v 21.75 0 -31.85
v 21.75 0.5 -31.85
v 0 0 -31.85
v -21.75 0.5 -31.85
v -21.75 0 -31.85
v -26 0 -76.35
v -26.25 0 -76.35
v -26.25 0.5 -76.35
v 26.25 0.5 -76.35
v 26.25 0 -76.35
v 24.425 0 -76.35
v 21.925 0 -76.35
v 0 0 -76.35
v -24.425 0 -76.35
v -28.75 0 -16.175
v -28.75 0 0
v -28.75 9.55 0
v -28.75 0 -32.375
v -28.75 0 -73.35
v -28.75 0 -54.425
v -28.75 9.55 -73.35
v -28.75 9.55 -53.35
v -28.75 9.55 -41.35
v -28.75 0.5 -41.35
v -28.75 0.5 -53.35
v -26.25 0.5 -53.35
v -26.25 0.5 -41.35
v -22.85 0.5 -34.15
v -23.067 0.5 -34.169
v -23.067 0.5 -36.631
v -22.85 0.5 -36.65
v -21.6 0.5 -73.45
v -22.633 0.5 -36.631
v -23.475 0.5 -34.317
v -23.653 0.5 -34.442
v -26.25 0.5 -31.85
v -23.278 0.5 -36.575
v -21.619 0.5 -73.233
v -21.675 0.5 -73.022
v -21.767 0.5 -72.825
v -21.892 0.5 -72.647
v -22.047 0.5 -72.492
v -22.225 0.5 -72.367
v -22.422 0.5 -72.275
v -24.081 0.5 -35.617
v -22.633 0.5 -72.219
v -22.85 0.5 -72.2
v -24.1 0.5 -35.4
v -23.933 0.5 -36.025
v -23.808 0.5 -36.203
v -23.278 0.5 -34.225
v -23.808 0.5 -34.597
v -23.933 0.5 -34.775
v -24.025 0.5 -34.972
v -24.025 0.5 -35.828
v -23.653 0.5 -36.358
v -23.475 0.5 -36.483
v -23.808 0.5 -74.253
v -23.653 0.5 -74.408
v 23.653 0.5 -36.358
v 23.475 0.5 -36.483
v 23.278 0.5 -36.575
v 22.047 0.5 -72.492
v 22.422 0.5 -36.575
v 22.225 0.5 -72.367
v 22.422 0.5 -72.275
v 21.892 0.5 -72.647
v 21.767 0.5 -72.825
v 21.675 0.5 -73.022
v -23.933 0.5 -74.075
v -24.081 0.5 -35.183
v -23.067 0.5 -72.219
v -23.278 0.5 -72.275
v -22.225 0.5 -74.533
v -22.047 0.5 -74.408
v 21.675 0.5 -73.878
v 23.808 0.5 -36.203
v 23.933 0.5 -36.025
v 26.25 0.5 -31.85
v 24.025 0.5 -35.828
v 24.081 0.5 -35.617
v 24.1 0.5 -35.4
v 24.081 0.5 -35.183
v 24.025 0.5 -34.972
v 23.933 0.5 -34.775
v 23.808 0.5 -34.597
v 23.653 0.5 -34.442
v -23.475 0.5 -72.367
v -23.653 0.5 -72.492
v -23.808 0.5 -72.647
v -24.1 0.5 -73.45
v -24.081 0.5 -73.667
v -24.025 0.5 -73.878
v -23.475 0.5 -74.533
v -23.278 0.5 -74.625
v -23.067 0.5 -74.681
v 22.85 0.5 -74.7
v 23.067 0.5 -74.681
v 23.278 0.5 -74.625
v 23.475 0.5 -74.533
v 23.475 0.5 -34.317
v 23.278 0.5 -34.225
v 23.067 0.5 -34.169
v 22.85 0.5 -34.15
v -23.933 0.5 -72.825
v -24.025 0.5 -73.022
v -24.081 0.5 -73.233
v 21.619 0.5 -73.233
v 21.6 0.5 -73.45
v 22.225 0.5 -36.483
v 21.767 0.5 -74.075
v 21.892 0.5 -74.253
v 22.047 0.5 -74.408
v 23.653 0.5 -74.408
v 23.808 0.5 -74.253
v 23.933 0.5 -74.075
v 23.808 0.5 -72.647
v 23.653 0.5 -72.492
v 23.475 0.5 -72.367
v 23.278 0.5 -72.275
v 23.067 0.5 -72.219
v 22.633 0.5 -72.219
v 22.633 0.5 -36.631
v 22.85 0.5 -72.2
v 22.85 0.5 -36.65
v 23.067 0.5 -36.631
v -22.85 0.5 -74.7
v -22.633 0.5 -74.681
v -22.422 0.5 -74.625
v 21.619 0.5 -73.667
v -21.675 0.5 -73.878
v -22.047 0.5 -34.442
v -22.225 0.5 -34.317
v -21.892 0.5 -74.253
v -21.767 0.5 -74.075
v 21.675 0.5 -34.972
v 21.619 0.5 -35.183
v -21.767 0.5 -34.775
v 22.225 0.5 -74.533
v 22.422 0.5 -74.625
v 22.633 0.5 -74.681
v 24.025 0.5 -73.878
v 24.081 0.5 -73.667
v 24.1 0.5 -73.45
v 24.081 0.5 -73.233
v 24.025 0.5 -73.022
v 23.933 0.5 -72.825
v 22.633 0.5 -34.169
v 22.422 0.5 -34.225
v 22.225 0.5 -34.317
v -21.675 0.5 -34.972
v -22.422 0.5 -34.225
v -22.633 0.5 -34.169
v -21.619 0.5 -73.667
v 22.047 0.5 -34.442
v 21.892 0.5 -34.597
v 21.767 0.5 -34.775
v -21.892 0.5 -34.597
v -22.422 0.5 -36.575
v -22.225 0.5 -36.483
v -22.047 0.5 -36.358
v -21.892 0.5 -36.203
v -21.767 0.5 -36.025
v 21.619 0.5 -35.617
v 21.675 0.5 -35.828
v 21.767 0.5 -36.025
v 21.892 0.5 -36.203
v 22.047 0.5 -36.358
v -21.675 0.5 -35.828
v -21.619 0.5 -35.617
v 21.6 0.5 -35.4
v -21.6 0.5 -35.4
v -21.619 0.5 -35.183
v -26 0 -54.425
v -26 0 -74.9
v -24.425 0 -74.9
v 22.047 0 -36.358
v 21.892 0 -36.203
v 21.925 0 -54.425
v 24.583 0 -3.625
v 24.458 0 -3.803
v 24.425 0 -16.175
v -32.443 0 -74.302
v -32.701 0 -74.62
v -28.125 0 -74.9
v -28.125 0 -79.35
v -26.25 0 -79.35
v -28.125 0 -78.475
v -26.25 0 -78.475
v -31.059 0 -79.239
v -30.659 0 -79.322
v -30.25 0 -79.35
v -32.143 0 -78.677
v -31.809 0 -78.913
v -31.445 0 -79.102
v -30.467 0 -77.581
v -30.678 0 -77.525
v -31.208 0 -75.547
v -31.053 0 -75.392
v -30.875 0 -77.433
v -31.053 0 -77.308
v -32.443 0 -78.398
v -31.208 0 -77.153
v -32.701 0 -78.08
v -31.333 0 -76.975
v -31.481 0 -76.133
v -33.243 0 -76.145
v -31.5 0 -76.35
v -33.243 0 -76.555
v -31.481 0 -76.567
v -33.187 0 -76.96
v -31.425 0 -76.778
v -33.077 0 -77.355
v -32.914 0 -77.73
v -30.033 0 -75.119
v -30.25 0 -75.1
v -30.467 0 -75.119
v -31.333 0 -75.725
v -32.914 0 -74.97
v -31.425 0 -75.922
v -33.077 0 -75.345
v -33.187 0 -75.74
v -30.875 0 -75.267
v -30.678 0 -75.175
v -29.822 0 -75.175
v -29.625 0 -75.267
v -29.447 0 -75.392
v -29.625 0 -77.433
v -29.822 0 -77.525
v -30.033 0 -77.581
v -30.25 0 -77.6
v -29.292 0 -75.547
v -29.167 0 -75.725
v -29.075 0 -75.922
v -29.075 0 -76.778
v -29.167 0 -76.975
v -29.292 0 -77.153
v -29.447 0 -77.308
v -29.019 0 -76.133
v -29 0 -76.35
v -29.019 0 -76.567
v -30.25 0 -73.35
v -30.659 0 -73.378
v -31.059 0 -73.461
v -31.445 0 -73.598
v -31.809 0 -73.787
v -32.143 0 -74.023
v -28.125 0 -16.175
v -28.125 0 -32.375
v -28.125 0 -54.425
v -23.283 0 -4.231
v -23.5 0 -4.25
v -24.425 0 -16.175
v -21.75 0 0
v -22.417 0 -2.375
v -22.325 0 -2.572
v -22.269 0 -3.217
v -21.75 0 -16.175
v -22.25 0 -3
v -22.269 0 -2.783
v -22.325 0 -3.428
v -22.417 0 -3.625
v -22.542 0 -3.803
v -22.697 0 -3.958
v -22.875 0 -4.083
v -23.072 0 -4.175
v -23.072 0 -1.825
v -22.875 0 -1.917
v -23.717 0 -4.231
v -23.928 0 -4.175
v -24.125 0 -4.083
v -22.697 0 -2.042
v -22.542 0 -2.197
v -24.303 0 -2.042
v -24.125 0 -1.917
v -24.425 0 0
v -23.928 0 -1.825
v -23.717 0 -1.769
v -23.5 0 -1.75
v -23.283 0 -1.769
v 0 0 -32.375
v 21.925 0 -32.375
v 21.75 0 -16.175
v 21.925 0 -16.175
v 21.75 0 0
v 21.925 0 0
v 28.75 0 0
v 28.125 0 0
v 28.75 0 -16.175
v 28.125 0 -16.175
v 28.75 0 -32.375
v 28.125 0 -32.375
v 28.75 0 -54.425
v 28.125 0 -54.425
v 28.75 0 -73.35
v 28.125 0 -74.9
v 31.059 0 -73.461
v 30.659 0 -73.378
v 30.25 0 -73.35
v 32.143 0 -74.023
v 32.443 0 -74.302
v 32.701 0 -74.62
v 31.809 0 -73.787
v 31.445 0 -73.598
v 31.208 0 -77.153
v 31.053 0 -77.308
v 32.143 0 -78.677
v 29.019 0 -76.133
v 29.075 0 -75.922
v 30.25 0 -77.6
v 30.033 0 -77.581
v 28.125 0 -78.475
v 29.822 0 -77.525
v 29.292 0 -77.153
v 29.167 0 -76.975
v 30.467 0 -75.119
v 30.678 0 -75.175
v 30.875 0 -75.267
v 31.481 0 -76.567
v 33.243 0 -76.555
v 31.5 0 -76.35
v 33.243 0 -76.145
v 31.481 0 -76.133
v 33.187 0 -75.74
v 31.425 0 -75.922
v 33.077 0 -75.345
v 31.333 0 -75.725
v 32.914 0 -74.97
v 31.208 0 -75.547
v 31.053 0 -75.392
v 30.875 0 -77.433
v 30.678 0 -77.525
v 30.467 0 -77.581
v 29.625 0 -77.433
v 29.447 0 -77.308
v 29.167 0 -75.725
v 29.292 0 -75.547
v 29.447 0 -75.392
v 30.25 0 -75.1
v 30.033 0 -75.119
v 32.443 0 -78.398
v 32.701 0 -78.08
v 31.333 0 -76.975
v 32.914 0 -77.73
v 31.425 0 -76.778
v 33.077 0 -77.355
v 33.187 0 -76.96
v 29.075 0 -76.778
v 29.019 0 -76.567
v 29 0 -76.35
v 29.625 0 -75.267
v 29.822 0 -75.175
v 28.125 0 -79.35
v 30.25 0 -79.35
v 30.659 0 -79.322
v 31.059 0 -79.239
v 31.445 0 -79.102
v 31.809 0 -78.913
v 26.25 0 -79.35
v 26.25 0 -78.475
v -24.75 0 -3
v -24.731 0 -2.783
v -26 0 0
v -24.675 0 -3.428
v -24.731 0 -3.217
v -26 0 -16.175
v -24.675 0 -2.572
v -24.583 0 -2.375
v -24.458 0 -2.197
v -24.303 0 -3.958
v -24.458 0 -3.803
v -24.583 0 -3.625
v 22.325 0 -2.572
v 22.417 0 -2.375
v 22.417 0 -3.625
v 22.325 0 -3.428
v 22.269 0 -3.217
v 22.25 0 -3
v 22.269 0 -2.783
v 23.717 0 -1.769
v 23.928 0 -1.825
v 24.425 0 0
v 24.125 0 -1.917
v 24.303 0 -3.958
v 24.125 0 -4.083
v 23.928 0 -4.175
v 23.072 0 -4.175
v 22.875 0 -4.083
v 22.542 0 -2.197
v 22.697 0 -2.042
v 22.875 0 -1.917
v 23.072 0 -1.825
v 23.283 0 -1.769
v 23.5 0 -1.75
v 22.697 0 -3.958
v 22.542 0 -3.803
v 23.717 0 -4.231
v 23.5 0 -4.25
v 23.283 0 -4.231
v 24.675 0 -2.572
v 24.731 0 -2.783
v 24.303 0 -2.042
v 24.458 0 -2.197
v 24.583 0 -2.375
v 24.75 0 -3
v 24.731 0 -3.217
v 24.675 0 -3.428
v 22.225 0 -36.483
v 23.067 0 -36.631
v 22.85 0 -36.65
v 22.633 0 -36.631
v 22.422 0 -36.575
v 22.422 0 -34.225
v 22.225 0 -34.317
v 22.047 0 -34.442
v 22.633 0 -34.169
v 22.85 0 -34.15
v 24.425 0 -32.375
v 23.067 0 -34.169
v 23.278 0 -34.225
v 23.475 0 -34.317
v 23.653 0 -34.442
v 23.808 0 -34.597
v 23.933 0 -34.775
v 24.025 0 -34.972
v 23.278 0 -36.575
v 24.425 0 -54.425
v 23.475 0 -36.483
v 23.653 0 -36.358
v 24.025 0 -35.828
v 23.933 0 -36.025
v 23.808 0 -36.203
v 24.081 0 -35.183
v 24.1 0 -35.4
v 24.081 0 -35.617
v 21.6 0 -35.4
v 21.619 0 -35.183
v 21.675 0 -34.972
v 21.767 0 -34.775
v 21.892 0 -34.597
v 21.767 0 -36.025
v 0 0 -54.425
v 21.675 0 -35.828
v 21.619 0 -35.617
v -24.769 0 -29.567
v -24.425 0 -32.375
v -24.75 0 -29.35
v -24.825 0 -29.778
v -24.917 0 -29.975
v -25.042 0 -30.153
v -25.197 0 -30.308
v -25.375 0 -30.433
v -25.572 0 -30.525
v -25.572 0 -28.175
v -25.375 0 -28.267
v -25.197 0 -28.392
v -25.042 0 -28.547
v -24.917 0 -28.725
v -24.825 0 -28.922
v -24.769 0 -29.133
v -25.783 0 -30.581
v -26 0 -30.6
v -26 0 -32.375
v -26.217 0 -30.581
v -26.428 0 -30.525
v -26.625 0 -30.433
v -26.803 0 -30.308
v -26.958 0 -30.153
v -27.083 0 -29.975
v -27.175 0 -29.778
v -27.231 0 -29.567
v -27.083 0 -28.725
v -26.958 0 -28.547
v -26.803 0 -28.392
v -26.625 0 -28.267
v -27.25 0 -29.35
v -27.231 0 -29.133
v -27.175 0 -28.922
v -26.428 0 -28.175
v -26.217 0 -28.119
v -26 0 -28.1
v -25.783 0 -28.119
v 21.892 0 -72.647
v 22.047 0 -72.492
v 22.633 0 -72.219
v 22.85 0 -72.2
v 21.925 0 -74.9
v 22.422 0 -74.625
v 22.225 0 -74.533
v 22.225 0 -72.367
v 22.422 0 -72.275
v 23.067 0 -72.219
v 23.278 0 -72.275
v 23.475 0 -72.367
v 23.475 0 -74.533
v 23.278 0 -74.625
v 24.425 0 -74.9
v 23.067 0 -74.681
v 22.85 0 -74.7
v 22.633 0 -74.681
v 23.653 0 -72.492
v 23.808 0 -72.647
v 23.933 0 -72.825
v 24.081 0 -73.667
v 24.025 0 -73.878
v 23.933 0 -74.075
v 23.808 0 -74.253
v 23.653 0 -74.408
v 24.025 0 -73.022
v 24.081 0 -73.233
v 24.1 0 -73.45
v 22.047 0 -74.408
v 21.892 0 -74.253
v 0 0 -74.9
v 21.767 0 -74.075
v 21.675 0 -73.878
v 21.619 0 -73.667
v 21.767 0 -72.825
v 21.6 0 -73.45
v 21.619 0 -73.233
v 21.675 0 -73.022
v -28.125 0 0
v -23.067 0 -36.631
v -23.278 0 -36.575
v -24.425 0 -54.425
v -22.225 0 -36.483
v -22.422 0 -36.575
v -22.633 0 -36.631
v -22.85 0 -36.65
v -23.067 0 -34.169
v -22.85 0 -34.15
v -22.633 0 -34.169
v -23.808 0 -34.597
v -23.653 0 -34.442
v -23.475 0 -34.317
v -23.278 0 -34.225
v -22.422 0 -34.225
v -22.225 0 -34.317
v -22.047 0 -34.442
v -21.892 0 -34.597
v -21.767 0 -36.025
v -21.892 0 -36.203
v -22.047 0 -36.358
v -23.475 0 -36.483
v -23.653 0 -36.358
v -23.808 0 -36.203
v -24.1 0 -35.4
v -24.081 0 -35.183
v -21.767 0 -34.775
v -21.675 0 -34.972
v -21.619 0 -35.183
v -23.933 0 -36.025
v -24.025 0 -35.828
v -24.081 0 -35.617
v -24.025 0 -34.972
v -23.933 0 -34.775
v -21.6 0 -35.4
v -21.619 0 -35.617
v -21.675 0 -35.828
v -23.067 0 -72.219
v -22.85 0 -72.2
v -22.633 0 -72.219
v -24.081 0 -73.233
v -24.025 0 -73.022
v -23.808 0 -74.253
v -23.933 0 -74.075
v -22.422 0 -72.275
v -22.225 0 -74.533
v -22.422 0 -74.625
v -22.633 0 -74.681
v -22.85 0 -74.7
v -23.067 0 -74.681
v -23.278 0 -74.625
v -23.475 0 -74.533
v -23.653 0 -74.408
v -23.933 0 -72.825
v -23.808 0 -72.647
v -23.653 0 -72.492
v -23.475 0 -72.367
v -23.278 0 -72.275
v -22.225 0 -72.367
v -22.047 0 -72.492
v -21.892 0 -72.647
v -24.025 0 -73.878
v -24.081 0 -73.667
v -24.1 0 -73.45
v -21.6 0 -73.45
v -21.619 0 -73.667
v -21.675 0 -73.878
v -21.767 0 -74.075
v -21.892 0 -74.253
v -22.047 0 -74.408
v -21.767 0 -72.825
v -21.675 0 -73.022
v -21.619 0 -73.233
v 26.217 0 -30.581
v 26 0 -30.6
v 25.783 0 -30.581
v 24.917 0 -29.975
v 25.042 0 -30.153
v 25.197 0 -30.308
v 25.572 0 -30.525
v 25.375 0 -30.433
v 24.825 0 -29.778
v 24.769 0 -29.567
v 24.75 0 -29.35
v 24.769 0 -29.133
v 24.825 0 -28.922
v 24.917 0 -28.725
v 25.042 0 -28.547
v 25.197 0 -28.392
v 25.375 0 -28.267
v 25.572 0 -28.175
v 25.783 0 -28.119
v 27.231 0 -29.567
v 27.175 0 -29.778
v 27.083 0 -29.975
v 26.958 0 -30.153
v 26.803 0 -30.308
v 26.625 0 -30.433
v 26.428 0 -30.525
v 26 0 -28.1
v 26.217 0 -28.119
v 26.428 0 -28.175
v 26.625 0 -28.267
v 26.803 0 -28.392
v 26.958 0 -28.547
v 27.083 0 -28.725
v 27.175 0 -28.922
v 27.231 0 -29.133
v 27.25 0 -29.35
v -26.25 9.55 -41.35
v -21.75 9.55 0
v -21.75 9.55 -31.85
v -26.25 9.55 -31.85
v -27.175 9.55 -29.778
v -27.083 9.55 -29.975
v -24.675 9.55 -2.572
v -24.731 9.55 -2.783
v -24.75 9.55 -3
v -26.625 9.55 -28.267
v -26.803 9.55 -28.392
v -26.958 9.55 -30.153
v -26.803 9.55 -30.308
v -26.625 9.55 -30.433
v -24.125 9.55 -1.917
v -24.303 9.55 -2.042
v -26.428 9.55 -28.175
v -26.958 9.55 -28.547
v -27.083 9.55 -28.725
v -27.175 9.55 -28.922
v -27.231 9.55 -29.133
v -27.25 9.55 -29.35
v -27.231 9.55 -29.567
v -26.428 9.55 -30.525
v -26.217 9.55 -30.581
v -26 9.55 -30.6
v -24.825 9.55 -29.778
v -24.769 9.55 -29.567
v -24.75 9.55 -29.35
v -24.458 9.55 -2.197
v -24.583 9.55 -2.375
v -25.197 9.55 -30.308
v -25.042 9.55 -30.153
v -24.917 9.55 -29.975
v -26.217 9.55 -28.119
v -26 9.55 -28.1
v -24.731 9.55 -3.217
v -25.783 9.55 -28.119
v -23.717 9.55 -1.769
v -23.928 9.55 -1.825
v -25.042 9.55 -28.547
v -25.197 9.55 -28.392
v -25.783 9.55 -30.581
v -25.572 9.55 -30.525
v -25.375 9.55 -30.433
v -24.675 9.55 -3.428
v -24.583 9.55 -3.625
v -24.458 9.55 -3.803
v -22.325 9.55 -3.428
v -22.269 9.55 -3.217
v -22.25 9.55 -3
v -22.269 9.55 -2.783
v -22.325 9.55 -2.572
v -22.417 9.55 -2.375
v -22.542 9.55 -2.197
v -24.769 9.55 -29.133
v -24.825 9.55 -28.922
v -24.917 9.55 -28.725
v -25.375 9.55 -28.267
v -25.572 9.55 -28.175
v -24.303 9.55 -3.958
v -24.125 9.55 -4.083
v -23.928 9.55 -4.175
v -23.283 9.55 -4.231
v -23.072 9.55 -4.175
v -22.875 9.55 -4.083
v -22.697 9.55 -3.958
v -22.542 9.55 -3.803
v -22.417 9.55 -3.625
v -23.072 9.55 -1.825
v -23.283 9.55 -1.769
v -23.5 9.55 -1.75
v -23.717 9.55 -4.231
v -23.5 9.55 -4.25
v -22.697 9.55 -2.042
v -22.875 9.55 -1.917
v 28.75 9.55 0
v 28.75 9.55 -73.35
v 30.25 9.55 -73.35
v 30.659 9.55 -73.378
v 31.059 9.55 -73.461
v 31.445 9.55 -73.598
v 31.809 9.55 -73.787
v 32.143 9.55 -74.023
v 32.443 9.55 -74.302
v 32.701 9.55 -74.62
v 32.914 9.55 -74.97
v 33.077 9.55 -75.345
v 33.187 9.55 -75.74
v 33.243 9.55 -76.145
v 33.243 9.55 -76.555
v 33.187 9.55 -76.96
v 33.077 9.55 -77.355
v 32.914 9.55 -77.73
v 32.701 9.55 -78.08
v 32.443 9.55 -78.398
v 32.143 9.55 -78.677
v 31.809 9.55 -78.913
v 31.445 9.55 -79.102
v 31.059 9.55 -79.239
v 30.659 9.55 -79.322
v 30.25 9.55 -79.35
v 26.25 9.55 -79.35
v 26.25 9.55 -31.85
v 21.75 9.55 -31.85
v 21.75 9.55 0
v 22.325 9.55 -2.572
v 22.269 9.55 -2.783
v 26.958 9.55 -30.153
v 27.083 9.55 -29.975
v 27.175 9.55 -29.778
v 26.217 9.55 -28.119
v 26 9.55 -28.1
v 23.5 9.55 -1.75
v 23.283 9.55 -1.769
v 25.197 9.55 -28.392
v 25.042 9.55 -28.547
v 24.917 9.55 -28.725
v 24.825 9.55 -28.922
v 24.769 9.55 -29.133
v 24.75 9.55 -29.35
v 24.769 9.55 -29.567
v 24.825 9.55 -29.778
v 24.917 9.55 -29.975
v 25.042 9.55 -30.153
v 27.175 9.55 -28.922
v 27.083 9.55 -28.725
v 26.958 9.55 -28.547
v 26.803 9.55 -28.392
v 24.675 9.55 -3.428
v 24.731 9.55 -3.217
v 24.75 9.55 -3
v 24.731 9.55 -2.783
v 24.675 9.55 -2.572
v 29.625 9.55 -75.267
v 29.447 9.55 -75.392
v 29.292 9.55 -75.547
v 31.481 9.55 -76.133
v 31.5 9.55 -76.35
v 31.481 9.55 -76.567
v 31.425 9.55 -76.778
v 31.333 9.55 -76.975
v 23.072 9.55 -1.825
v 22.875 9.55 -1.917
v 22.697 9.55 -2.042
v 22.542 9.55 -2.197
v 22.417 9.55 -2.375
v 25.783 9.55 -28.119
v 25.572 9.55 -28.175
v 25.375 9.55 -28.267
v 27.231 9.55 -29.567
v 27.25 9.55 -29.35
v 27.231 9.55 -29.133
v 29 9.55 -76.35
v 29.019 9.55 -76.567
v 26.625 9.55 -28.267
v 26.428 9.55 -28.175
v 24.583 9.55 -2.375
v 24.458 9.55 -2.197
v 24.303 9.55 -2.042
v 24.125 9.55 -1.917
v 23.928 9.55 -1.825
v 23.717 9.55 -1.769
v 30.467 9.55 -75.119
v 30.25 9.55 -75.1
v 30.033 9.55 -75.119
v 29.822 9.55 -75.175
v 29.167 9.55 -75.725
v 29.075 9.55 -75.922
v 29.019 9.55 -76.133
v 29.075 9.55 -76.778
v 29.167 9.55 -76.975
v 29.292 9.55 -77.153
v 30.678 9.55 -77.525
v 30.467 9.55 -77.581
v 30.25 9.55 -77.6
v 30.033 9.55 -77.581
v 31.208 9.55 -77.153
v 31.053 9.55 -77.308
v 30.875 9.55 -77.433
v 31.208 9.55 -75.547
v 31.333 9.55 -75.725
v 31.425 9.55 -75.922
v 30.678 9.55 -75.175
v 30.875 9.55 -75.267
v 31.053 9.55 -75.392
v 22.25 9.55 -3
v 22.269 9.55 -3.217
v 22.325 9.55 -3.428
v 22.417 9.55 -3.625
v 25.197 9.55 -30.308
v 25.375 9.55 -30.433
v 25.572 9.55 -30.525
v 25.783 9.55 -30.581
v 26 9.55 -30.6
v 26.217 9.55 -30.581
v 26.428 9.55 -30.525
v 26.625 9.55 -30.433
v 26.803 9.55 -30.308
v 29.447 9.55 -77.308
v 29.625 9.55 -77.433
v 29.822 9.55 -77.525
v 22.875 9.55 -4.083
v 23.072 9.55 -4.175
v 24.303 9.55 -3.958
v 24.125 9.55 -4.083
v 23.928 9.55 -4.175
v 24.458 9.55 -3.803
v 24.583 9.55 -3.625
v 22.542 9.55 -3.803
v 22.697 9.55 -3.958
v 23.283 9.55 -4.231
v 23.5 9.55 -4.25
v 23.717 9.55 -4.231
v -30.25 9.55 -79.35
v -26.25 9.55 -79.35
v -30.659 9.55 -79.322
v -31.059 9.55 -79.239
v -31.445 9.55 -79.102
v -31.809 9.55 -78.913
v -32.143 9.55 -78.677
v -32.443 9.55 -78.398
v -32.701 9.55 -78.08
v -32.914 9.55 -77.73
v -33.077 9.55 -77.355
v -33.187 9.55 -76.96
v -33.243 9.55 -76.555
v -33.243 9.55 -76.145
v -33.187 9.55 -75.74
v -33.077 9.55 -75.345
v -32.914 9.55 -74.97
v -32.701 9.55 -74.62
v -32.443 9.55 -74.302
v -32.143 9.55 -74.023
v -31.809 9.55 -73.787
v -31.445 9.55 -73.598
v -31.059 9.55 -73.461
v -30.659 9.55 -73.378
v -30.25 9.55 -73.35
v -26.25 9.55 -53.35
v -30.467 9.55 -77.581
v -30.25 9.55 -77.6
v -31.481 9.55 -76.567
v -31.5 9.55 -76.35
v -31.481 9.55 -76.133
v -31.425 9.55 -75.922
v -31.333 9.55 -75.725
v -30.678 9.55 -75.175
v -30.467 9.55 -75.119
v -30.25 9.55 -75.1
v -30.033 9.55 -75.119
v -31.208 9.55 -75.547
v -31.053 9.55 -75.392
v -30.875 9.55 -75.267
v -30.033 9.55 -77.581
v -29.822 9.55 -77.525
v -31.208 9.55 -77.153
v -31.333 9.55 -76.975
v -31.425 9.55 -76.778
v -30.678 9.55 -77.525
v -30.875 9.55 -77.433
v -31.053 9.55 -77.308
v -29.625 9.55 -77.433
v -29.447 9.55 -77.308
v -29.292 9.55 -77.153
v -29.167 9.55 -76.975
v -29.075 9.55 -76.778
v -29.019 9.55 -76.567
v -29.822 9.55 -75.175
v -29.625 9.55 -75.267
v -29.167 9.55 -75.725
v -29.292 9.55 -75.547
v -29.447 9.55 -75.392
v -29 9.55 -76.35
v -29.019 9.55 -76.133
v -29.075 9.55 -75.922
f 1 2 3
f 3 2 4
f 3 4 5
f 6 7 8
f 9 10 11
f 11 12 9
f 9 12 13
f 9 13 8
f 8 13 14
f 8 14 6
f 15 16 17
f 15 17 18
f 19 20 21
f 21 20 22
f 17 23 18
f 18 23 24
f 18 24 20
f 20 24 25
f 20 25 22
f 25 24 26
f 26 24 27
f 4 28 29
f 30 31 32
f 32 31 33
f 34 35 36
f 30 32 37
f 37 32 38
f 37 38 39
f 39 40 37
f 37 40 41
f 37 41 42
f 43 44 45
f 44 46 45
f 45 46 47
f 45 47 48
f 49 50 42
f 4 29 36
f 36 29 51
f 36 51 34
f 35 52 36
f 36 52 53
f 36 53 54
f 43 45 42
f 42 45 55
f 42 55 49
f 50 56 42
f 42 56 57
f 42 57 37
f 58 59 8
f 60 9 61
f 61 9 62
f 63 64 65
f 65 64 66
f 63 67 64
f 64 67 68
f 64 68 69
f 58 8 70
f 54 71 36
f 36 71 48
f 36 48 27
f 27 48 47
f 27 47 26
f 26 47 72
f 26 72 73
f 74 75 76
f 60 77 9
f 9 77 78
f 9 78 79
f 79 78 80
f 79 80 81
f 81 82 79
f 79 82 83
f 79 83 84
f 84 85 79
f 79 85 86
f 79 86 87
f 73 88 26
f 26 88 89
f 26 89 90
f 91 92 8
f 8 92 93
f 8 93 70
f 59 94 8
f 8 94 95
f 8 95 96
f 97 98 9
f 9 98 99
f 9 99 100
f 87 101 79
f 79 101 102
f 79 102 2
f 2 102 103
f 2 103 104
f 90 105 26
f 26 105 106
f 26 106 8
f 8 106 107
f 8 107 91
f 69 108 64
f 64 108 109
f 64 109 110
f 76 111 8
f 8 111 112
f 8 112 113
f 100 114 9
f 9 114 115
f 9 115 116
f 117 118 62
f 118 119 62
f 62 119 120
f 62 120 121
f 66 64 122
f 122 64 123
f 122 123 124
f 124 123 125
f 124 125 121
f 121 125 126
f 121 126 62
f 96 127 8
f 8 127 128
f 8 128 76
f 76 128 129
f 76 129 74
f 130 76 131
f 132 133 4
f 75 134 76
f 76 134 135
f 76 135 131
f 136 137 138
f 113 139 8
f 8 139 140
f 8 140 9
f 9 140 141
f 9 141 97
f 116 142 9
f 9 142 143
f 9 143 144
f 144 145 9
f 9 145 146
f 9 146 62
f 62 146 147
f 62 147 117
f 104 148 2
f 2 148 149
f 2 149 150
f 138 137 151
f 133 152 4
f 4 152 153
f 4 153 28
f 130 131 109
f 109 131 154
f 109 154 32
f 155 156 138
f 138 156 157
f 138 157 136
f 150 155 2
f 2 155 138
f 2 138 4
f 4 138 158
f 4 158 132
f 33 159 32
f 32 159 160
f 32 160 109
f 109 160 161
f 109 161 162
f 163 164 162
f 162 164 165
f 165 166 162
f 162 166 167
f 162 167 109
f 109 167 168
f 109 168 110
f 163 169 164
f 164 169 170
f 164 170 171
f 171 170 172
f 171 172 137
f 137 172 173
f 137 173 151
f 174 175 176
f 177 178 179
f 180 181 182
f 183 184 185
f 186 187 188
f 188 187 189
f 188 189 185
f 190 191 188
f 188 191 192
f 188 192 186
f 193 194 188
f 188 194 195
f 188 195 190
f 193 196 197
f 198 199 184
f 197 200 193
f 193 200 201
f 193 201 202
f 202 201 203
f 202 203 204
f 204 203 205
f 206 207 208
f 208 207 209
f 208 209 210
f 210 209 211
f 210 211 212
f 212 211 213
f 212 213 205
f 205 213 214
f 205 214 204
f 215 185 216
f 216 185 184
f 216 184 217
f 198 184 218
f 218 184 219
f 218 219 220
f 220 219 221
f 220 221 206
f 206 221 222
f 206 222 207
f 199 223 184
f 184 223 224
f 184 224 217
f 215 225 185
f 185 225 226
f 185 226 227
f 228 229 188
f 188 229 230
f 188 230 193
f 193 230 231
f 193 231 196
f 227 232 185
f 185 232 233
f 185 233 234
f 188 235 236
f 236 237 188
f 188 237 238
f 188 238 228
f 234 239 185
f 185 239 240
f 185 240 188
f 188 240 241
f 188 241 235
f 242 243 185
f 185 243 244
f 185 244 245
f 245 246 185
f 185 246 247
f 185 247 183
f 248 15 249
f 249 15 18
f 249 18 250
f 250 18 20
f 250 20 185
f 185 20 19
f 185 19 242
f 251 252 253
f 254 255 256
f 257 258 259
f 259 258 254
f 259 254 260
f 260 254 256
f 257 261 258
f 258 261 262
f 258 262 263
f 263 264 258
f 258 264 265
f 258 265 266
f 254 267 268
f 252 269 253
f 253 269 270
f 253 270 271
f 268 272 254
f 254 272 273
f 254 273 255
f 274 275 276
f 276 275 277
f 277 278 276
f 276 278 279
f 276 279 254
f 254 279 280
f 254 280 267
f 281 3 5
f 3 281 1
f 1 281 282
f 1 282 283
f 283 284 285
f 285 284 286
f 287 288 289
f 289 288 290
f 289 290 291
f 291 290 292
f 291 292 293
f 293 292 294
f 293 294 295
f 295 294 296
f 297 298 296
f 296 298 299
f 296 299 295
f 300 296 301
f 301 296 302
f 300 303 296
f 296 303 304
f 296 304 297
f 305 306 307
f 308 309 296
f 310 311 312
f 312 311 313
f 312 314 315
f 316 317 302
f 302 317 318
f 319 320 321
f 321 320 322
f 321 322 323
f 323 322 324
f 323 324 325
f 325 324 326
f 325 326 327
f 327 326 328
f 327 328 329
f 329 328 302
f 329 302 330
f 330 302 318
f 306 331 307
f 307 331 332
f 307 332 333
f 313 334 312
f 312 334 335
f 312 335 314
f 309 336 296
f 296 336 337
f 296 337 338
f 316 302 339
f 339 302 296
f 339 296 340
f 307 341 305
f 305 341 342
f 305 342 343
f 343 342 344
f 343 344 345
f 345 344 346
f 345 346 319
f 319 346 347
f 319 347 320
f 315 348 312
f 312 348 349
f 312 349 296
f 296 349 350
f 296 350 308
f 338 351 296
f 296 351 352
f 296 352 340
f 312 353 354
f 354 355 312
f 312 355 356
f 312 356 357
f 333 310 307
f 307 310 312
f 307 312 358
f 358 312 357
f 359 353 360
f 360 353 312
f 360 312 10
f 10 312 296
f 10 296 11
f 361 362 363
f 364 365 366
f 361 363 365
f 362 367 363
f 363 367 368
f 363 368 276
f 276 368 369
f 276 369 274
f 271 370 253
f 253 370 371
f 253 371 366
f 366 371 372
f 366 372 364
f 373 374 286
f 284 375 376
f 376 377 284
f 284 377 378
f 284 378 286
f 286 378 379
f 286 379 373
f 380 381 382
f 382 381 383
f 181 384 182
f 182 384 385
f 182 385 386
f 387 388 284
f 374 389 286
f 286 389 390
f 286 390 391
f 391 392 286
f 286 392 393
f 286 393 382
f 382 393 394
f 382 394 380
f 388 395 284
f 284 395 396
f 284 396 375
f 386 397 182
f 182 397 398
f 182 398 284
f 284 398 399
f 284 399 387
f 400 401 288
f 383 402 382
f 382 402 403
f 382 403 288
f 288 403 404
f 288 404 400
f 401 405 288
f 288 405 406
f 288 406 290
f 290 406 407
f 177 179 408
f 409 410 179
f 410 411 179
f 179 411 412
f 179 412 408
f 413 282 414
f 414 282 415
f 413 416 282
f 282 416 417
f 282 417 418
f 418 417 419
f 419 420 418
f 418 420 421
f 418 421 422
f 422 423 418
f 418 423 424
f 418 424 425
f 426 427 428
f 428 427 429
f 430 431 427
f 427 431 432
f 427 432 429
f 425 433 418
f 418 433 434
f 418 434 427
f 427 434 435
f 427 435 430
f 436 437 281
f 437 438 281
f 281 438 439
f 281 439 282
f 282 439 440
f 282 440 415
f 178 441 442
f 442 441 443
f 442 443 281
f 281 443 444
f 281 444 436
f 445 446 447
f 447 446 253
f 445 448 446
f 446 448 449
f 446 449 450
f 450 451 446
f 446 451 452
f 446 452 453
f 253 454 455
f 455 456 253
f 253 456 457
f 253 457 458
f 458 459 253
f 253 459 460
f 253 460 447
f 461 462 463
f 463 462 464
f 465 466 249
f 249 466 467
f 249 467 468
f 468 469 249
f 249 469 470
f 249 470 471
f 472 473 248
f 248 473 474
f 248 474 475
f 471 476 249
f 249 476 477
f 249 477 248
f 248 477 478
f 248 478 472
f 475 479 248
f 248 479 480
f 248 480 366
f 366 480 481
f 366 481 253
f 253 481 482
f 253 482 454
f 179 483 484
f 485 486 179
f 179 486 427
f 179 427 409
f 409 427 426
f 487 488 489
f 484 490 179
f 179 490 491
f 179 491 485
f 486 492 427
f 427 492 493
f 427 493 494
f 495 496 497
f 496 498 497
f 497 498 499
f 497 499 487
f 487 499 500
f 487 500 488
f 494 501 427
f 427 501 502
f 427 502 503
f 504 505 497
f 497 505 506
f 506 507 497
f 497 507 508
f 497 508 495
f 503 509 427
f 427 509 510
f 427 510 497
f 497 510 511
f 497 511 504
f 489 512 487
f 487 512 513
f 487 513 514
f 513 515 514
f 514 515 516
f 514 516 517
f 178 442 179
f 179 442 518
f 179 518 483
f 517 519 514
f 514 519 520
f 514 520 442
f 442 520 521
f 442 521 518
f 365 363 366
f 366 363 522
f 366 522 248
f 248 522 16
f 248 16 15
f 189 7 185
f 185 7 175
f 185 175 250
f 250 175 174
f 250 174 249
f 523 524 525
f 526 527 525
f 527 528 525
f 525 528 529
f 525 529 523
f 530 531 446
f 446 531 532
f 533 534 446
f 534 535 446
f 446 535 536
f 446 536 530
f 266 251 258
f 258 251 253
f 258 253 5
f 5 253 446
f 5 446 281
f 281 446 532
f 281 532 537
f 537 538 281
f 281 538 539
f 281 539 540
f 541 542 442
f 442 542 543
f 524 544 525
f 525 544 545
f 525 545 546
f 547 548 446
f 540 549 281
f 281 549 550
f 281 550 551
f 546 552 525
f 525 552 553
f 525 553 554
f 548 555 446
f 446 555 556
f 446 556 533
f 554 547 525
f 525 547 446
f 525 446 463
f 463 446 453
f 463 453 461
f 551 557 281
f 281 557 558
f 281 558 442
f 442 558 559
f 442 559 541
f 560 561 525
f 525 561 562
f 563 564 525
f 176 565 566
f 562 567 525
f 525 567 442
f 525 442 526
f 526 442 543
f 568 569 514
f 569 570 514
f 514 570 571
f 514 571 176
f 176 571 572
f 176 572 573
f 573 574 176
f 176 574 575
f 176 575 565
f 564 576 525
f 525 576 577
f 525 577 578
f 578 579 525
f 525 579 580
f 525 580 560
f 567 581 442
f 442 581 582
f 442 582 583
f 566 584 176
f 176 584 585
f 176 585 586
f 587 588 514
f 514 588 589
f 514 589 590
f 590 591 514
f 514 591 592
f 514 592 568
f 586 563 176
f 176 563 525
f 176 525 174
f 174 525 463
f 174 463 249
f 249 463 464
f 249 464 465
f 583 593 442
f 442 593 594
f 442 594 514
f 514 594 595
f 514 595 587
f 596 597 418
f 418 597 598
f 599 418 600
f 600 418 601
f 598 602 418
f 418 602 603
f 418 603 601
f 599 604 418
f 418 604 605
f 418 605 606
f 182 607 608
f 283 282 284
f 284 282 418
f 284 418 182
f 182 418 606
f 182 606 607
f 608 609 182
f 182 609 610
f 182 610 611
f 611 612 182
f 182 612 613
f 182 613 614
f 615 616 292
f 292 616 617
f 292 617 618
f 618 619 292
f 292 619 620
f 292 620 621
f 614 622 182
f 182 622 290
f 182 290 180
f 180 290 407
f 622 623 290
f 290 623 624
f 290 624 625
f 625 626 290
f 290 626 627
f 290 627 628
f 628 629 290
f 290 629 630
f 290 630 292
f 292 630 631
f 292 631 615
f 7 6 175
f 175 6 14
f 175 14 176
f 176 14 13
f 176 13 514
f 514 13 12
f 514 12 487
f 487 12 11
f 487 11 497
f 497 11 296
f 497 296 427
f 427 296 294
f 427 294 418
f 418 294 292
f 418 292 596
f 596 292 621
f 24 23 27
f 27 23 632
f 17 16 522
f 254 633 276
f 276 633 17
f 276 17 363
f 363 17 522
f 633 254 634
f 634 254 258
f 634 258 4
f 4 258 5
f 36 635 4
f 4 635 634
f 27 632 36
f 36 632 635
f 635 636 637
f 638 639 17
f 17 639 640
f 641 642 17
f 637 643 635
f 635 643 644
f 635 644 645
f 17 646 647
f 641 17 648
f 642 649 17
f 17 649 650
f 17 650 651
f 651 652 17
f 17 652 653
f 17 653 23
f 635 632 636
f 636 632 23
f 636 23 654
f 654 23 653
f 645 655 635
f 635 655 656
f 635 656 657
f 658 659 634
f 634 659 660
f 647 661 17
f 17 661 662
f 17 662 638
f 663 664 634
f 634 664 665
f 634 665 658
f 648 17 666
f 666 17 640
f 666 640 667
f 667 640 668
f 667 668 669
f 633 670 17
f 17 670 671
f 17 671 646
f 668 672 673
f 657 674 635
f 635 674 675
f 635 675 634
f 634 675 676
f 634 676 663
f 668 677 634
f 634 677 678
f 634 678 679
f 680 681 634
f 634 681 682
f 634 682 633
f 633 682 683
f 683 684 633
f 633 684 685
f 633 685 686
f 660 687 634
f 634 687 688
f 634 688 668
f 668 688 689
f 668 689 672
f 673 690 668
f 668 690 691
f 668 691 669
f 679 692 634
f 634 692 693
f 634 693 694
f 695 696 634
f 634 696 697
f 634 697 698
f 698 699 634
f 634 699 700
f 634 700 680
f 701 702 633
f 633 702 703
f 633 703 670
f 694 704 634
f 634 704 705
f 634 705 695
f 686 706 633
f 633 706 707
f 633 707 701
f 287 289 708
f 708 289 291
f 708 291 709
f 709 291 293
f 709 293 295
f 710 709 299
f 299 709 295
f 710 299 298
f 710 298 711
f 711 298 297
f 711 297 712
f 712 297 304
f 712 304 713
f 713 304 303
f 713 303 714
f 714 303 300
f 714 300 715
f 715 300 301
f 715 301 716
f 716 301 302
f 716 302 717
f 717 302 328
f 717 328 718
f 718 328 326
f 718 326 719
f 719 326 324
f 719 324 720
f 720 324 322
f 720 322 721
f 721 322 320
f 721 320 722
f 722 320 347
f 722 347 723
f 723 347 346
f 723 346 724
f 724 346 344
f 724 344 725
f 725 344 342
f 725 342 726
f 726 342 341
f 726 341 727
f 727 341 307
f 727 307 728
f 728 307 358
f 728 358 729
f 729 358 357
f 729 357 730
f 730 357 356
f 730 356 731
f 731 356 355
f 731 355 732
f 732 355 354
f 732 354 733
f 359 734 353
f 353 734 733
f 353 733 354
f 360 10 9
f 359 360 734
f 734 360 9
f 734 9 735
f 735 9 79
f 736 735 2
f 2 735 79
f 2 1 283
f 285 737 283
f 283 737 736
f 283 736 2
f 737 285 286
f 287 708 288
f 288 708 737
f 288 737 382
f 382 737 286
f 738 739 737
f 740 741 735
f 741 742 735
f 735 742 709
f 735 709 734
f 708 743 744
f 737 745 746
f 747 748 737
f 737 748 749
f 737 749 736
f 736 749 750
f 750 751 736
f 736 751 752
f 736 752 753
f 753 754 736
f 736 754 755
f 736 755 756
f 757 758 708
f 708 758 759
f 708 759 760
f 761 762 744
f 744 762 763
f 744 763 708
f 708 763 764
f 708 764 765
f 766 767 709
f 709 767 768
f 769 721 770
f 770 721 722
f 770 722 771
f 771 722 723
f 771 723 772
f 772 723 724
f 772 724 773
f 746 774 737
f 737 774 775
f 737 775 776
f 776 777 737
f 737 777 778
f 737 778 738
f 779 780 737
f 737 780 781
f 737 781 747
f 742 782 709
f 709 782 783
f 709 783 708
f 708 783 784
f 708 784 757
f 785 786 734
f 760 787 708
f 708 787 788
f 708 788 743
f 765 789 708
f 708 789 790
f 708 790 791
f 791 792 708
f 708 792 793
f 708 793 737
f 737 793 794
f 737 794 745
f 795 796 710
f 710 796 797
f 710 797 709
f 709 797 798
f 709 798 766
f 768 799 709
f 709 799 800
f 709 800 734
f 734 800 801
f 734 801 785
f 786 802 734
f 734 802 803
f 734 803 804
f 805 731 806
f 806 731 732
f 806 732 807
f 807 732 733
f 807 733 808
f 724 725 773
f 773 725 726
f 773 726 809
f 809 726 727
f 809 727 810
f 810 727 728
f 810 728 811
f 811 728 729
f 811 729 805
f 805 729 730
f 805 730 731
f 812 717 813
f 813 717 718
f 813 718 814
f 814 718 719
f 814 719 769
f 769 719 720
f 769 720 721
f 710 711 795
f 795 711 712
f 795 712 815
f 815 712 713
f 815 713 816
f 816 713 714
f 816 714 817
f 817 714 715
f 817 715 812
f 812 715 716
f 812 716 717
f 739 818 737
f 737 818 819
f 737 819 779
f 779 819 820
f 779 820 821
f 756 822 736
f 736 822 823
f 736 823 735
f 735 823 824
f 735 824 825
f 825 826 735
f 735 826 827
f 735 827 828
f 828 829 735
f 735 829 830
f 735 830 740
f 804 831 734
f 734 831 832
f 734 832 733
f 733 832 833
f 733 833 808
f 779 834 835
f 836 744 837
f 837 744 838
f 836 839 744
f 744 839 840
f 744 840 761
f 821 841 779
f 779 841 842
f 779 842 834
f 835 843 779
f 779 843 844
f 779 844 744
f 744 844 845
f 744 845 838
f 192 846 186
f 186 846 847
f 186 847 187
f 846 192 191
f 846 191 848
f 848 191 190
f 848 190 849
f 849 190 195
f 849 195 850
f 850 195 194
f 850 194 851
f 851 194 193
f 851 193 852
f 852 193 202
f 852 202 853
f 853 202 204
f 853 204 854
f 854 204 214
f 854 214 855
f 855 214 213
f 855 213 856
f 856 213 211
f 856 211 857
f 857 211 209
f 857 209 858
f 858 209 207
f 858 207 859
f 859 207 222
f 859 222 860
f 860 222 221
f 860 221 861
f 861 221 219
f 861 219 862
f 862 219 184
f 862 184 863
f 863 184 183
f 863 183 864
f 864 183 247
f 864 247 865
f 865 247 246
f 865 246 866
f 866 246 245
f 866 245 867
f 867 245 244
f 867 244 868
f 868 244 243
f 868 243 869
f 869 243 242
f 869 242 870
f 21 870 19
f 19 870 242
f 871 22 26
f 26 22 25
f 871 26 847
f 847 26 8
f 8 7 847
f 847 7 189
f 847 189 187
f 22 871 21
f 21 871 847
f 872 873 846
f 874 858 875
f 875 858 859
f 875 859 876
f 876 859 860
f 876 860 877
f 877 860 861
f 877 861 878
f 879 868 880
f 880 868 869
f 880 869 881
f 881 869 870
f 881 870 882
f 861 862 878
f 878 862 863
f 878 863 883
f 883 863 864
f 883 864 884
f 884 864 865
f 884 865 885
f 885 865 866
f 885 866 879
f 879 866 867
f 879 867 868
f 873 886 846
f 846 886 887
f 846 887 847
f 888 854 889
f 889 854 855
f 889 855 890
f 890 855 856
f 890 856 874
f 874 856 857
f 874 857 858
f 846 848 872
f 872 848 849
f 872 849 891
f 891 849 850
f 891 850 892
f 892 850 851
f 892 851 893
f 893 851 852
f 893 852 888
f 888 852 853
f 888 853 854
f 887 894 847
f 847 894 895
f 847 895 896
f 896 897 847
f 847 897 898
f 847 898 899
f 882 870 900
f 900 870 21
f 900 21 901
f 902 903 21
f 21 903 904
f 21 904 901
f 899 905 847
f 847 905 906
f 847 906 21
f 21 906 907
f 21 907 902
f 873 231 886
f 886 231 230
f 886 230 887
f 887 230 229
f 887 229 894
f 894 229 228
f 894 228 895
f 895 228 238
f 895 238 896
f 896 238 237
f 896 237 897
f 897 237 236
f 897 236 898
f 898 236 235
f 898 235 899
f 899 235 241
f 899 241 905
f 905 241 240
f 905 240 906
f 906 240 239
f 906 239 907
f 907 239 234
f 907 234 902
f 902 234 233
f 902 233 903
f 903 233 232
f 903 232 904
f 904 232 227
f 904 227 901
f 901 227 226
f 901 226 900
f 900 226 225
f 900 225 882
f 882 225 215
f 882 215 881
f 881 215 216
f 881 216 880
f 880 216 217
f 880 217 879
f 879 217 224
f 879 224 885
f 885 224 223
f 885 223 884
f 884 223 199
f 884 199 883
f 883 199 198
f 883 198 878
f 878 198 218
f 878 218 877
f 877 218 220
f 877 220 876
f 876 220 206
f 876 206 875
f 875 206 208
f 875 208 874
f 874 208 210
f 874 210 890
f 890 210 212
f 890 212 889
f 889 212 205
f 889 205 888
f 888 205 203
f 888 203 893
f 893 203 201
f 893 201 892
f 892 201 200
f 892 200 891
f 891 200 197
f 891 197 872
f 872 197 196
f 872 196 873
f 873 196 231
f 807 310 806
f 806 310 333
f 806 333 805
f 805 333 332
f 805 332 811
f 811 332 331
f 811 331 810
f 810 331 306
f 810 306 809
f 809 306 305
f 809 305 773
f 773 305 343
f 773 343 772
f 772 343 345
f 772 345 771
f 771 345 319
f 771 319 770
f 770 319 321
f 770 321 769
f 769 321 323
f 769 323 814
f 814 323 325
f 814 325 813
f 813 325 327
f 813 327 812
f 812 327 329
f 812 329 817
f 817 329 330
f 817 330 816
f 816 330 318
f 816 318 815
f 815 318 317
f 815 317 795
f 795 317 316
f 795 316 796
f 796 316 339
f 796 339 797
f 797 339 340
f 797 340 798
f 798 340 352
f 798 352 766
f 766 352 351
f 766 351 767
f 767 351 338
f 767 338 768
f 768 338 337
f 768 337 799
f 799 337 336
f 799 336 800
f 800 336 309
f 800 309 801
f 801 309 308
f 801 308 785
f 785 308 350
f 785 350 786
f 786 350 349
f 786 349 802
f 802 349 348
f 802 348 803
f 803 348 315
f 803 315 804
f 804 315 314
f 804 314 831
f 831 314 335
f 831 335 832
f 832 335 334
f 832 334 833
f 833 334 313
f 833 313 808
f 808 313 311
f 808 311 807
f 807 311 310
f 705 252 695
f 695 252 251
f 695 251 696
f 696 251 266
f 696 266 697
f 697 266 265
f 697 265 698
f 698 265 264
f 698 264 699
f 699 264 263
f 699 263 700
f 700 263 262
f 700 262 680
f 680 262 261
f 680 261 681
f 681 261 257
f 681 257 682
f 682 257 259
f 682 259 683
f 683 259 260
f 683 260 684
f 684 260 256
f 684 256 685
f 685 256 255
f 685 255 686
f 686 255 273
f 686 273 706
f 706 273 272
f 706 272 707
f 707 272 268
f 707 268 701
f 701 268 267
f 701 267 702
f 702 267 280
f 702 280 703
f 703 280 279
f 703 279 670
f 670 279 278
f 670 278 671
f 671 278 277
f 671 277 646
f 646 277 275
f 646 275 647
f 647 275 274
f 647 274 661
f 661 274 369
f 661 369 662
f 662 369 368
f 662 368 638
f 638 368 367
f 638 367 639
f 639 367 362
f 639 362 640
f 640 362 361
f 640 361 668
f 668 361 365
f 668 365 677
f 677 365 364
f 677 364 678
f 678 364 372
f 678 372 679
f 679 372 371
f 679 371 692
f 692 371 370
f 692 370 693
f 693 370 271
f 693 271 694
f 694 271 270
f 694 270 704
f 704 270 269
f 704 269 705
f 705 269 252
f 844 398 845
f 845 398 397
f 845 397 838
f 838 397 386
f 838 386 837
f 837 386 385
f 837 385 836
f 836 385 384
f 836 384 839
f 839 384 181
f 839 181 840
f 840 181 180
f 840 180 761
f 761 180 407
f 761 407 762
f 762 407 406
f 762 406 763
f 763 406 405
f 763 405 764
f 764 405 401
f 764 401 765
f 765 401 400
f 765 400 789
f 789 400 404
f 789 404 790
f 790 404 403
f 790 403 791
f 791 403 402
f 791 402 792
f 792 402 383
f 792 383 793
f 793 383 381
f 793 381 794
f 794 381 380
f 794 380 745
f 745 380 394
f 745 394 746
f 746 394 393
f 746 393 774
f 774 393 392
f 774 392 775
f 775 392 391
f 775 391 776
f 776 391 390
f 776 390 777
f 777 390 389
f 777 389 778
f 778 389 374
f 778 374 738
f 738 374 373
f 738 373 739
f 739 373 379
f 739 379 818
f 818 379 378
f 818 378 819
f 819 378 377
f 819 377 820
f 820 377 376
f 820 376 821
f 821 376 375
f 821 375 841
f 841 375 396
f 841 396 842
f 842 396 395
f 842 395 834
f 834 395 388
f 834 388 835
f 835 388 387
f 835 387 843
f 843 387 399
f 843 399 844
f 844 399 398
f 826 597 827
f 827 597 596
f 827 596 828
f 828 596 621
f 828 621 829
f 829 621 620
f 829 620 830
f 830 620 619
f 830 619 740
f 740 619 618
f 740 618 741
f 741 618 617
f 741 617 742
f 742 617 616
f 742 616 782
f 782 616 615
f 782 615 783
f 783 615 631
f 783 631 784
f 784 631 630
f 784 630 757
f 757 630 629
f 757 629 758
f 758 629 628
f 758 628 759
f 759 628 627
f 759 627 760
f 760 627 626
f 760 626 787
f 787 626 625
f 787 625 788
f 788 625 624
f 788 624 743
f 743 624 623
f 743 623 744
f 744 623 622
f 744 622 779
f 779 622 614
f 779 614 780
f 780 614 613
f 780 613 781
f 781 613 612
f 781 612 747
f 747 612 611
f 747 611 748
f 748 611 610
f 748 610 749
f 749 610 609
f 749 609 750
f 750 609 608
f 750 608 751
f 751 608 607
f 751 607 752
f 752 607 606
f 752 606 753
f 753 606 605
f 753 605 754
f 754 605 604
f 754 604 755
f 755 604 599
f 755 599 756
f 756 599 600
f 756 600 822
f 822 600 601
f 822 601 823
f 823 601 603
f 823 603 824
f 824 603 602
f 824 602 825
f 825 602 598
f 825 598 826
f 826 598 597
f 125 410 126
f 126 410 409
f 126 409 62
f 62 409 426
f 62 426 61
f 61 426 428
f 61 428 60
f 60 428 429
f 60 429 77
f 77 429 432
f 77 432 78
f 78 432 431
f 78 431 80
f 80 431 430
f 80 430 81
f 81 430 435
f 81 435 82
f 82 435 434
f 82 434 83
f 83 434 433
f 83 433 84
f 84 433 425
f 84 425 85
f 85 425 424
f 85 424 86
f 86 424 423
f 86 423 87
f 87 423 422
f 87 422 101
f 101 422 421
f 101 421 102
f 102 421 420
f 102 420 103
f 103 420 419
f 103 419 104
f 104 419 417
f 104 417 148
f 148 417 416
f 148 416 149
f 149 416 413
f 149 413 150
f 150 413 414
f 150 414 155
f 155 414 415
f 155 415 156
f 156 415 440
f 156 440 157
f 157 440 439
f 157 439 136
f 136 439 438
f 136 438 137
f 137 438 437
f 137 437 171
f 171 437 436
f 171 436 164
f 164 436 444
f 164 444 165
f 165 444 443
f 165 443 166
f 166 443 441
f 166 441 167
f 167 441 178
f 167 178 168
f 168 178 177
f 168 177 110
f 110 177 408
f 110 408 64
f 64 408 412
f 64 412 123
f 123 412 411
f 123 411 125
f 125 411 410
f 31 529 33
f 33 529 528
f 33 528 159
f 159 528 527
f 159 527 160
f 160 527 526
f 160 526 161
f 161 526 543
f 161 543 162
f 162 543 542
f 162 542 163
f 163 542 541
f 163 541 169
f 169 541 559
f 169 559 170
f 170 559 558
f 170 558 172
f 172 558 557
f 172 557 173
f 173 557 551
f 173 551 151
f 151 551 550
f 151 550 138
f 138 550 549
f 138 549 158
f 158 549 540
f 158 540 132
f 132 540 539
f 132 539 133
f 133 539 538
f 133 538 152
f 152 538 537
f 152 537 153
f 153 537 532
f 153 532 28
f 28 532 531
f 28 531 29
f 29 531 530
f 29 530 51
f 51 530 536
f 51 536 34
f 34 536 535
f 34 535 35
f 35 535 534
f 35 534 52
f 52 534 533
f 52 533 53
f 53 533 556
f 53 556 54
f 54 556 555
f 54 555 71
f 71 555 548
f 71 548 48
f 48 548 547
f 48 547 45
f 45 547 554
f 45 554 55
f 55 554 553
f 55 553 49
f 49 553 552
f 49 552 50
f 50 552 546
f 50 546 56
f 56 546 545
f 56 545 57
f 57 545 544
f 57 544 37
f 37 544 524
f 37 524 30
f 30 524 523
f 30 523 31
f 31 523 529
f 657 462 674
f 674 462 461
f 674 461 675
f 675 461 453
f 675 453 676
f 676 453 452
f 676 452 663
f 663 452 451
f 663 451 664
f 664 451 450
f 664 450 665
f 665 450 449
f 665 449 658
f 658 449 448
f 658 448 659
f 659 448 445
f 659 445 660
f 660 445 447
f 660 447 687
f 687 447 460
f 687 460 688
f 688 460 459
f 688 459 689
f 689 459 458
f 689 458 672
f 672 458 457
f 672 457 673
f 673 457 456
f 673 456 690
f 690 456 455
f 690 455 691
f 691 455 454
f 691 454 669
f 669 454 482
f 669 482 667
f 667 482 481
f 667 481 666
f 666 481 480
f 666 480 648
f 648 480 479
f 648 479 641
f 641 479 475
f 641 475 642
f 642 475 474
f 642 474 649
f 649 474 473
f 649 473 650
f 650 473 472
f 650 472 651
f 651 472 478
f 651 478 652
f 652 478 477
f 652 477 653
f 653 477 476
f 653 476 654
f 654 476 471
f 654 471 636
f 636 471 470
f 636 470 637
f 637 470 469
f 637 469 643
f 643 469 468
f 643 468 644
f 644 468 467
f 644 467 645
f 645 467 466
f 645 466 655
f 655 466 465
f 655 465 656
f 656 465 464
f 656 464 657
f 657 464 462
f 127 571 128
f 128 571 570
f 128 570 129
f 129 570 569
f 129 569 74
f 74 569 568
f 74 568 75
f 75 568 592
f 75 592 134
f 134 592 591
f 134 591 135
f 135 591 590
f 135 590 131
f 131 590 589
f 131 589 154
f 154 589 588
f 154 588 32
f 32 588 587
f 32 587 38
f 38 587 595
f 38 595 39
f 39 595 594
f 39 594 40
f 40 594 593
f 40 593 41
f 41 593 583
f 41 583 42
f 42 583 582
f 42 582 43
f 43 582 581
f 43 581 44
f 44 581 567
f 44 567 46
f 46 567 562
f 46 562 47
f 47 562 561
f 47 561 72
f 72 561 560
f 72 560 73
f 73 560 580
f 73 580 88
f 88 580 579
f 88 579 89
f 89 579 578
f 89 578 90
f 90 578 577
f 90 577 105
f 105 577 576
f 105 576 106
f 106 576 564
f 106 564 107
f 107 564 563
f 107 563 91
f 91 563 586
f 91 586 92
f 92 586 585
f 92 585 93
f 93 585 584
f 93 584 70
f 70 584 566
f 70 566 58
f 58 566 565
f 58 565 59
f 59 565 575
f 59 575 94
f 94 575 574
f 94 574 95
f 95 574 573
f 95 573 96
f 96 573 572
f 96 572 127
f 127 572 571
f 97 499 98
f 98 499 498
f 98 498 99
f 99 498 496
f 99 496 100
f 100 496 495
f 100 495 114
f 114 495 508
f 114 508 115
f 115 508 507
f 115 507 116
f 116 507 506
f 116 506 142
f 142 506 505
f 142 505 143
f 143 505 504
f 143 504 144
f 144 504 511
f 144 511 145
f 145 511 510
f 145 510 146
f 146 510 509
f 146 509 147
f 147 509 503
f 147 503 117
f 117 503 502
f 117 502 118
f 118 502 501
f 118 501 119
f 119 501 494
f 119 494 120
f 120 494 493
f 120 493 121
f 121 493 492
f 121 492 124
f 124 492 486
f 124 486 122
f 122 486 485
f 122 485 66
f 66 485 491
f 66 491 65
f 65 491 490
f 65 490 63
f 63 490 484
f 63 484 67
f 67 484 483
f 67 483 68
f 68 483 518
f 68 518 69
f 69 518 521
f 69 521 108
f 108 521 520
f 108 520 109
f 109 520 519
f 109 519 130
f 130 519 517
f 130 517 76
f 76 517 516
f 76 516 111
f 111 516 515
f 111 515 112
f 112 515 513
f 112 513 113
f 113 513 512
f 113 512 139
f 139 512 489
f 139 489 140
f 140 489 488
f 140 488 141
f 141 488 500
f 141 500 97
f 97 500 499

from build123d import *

# Parameters (mm, degrees)
BOSS_EXTRUDE1_DEPTH            = 0.5
BOSS_EXTRUDE2_DEPTH            = 9.55
F_2_5_2_5_DIAMETER_HOLE1_D     = 2.5
F_2_5_2_5_DIAMETER_HOLE1_DEPTH = 12
F_2_5_2_5_DIAMETER_HOLE1_TIP   = 0.751075774


with BuildPart() as part:
    # Sketch1 → Boss-Extrude1 (new body)
    with BuildSketch(Plane(origin=(0, 0, 0), x_dir=(1, 0, 0), z_dir=(0, 1, 0))):
        Polygon((26.25, 31.85), (26.25, 76.35), (-26.25, 76.35), (-26.25, 53.35), (-28.75, 53.35), (-28.75, 41.35), (-26.25, 41.35), (-26.25, 31.85), align=None)
    extrude(amount=BOSS_EXTRUDE1_DEPTH)

    # Sketch1<3> → Boss-Extrude2 (add)
    with BuildSketch(Plane(origin=(0, 0, 0), x_dir=(1, 0, 0), z_dir=(0, 1, 0))):
        with BuildLine():
            Line((-26.25, 79.35), (-30.25, 79.35))
            ThreePointArc((-30.25, 79.35), (-33.25, 76.35), (-30.25, 73.35))
            Line((-30.25, 73.35), (-28.75, 73.35))
            Line((-28.75, 73.35), (-28.75, 53.35))
            Line((-28.75, 53.35), (-26.25, 53.35))
            Line((-26.25, 53.35), (-26.25, 79.35))
        make_face()
        with BuildLine():
            Line((26.25, 79.35), (26.25, 31.85))
            Line((26.25, 31.85), (21.75, 31.85))
            Line((21.75, 31.85), (21.75, 0))
            Line((21.75, 0), (28.75, 0))
            Line((28.75, 0), (28.75, 73.35))
            Line((28.75, 73.35), (30.25, 73.35))
            ThreePointArc((30.25, 73.35), (33.25, 76.35), (30.25, 79.35))
            Line((30.25, 79.35), (26.25, 79.35))
        make_face()
        Polygon((-26.25, 31.85), (-26.25, 41.35), (-28.75, 41.35), (-28.75, 0), (-21.75, 0), (-21.75, 31.85), align=None)
    extrude(amount=BOSS_EXTRUDE2_DEPTH)

    # Ø2.5 (2.5) Diameter Hole1
    with Locations(Plane(origin=(0, 0, 0), x_dir=(-1, 0, 0), z_dir=(0, -1, 0))):
        with Locations((-22.85, 73.45), (22.85, 73.45), (26, 29.35), (22.85, 35.4), (-22.85, 35.4), (-26, 29.35), (-23.5, 3), (23.5, 3), (-30.25, 76.35), (30.25, 76.35)):
            Hole(F_2_5_2_5_DIAMETER_HOLE1_D / 2, depth=F_2_5_2_5_DIAMETER_HOLE1_DEPTH)
            with Locations((0, 0, -(F_2_5_2_5_DIAMETER_HOLE1_DEPTH + F_2_5_2_5_DIAMETER_HOLE1_TIP / 2))):  # 118° drill point
                Cone(0, F_2_5_2_5_DIAMETER_HOLE1_D / 2, F_2_5_2_5_DIAMETER_HOLE1_TIP, mode=Mode.SUBTRACT)


solid = part.part
